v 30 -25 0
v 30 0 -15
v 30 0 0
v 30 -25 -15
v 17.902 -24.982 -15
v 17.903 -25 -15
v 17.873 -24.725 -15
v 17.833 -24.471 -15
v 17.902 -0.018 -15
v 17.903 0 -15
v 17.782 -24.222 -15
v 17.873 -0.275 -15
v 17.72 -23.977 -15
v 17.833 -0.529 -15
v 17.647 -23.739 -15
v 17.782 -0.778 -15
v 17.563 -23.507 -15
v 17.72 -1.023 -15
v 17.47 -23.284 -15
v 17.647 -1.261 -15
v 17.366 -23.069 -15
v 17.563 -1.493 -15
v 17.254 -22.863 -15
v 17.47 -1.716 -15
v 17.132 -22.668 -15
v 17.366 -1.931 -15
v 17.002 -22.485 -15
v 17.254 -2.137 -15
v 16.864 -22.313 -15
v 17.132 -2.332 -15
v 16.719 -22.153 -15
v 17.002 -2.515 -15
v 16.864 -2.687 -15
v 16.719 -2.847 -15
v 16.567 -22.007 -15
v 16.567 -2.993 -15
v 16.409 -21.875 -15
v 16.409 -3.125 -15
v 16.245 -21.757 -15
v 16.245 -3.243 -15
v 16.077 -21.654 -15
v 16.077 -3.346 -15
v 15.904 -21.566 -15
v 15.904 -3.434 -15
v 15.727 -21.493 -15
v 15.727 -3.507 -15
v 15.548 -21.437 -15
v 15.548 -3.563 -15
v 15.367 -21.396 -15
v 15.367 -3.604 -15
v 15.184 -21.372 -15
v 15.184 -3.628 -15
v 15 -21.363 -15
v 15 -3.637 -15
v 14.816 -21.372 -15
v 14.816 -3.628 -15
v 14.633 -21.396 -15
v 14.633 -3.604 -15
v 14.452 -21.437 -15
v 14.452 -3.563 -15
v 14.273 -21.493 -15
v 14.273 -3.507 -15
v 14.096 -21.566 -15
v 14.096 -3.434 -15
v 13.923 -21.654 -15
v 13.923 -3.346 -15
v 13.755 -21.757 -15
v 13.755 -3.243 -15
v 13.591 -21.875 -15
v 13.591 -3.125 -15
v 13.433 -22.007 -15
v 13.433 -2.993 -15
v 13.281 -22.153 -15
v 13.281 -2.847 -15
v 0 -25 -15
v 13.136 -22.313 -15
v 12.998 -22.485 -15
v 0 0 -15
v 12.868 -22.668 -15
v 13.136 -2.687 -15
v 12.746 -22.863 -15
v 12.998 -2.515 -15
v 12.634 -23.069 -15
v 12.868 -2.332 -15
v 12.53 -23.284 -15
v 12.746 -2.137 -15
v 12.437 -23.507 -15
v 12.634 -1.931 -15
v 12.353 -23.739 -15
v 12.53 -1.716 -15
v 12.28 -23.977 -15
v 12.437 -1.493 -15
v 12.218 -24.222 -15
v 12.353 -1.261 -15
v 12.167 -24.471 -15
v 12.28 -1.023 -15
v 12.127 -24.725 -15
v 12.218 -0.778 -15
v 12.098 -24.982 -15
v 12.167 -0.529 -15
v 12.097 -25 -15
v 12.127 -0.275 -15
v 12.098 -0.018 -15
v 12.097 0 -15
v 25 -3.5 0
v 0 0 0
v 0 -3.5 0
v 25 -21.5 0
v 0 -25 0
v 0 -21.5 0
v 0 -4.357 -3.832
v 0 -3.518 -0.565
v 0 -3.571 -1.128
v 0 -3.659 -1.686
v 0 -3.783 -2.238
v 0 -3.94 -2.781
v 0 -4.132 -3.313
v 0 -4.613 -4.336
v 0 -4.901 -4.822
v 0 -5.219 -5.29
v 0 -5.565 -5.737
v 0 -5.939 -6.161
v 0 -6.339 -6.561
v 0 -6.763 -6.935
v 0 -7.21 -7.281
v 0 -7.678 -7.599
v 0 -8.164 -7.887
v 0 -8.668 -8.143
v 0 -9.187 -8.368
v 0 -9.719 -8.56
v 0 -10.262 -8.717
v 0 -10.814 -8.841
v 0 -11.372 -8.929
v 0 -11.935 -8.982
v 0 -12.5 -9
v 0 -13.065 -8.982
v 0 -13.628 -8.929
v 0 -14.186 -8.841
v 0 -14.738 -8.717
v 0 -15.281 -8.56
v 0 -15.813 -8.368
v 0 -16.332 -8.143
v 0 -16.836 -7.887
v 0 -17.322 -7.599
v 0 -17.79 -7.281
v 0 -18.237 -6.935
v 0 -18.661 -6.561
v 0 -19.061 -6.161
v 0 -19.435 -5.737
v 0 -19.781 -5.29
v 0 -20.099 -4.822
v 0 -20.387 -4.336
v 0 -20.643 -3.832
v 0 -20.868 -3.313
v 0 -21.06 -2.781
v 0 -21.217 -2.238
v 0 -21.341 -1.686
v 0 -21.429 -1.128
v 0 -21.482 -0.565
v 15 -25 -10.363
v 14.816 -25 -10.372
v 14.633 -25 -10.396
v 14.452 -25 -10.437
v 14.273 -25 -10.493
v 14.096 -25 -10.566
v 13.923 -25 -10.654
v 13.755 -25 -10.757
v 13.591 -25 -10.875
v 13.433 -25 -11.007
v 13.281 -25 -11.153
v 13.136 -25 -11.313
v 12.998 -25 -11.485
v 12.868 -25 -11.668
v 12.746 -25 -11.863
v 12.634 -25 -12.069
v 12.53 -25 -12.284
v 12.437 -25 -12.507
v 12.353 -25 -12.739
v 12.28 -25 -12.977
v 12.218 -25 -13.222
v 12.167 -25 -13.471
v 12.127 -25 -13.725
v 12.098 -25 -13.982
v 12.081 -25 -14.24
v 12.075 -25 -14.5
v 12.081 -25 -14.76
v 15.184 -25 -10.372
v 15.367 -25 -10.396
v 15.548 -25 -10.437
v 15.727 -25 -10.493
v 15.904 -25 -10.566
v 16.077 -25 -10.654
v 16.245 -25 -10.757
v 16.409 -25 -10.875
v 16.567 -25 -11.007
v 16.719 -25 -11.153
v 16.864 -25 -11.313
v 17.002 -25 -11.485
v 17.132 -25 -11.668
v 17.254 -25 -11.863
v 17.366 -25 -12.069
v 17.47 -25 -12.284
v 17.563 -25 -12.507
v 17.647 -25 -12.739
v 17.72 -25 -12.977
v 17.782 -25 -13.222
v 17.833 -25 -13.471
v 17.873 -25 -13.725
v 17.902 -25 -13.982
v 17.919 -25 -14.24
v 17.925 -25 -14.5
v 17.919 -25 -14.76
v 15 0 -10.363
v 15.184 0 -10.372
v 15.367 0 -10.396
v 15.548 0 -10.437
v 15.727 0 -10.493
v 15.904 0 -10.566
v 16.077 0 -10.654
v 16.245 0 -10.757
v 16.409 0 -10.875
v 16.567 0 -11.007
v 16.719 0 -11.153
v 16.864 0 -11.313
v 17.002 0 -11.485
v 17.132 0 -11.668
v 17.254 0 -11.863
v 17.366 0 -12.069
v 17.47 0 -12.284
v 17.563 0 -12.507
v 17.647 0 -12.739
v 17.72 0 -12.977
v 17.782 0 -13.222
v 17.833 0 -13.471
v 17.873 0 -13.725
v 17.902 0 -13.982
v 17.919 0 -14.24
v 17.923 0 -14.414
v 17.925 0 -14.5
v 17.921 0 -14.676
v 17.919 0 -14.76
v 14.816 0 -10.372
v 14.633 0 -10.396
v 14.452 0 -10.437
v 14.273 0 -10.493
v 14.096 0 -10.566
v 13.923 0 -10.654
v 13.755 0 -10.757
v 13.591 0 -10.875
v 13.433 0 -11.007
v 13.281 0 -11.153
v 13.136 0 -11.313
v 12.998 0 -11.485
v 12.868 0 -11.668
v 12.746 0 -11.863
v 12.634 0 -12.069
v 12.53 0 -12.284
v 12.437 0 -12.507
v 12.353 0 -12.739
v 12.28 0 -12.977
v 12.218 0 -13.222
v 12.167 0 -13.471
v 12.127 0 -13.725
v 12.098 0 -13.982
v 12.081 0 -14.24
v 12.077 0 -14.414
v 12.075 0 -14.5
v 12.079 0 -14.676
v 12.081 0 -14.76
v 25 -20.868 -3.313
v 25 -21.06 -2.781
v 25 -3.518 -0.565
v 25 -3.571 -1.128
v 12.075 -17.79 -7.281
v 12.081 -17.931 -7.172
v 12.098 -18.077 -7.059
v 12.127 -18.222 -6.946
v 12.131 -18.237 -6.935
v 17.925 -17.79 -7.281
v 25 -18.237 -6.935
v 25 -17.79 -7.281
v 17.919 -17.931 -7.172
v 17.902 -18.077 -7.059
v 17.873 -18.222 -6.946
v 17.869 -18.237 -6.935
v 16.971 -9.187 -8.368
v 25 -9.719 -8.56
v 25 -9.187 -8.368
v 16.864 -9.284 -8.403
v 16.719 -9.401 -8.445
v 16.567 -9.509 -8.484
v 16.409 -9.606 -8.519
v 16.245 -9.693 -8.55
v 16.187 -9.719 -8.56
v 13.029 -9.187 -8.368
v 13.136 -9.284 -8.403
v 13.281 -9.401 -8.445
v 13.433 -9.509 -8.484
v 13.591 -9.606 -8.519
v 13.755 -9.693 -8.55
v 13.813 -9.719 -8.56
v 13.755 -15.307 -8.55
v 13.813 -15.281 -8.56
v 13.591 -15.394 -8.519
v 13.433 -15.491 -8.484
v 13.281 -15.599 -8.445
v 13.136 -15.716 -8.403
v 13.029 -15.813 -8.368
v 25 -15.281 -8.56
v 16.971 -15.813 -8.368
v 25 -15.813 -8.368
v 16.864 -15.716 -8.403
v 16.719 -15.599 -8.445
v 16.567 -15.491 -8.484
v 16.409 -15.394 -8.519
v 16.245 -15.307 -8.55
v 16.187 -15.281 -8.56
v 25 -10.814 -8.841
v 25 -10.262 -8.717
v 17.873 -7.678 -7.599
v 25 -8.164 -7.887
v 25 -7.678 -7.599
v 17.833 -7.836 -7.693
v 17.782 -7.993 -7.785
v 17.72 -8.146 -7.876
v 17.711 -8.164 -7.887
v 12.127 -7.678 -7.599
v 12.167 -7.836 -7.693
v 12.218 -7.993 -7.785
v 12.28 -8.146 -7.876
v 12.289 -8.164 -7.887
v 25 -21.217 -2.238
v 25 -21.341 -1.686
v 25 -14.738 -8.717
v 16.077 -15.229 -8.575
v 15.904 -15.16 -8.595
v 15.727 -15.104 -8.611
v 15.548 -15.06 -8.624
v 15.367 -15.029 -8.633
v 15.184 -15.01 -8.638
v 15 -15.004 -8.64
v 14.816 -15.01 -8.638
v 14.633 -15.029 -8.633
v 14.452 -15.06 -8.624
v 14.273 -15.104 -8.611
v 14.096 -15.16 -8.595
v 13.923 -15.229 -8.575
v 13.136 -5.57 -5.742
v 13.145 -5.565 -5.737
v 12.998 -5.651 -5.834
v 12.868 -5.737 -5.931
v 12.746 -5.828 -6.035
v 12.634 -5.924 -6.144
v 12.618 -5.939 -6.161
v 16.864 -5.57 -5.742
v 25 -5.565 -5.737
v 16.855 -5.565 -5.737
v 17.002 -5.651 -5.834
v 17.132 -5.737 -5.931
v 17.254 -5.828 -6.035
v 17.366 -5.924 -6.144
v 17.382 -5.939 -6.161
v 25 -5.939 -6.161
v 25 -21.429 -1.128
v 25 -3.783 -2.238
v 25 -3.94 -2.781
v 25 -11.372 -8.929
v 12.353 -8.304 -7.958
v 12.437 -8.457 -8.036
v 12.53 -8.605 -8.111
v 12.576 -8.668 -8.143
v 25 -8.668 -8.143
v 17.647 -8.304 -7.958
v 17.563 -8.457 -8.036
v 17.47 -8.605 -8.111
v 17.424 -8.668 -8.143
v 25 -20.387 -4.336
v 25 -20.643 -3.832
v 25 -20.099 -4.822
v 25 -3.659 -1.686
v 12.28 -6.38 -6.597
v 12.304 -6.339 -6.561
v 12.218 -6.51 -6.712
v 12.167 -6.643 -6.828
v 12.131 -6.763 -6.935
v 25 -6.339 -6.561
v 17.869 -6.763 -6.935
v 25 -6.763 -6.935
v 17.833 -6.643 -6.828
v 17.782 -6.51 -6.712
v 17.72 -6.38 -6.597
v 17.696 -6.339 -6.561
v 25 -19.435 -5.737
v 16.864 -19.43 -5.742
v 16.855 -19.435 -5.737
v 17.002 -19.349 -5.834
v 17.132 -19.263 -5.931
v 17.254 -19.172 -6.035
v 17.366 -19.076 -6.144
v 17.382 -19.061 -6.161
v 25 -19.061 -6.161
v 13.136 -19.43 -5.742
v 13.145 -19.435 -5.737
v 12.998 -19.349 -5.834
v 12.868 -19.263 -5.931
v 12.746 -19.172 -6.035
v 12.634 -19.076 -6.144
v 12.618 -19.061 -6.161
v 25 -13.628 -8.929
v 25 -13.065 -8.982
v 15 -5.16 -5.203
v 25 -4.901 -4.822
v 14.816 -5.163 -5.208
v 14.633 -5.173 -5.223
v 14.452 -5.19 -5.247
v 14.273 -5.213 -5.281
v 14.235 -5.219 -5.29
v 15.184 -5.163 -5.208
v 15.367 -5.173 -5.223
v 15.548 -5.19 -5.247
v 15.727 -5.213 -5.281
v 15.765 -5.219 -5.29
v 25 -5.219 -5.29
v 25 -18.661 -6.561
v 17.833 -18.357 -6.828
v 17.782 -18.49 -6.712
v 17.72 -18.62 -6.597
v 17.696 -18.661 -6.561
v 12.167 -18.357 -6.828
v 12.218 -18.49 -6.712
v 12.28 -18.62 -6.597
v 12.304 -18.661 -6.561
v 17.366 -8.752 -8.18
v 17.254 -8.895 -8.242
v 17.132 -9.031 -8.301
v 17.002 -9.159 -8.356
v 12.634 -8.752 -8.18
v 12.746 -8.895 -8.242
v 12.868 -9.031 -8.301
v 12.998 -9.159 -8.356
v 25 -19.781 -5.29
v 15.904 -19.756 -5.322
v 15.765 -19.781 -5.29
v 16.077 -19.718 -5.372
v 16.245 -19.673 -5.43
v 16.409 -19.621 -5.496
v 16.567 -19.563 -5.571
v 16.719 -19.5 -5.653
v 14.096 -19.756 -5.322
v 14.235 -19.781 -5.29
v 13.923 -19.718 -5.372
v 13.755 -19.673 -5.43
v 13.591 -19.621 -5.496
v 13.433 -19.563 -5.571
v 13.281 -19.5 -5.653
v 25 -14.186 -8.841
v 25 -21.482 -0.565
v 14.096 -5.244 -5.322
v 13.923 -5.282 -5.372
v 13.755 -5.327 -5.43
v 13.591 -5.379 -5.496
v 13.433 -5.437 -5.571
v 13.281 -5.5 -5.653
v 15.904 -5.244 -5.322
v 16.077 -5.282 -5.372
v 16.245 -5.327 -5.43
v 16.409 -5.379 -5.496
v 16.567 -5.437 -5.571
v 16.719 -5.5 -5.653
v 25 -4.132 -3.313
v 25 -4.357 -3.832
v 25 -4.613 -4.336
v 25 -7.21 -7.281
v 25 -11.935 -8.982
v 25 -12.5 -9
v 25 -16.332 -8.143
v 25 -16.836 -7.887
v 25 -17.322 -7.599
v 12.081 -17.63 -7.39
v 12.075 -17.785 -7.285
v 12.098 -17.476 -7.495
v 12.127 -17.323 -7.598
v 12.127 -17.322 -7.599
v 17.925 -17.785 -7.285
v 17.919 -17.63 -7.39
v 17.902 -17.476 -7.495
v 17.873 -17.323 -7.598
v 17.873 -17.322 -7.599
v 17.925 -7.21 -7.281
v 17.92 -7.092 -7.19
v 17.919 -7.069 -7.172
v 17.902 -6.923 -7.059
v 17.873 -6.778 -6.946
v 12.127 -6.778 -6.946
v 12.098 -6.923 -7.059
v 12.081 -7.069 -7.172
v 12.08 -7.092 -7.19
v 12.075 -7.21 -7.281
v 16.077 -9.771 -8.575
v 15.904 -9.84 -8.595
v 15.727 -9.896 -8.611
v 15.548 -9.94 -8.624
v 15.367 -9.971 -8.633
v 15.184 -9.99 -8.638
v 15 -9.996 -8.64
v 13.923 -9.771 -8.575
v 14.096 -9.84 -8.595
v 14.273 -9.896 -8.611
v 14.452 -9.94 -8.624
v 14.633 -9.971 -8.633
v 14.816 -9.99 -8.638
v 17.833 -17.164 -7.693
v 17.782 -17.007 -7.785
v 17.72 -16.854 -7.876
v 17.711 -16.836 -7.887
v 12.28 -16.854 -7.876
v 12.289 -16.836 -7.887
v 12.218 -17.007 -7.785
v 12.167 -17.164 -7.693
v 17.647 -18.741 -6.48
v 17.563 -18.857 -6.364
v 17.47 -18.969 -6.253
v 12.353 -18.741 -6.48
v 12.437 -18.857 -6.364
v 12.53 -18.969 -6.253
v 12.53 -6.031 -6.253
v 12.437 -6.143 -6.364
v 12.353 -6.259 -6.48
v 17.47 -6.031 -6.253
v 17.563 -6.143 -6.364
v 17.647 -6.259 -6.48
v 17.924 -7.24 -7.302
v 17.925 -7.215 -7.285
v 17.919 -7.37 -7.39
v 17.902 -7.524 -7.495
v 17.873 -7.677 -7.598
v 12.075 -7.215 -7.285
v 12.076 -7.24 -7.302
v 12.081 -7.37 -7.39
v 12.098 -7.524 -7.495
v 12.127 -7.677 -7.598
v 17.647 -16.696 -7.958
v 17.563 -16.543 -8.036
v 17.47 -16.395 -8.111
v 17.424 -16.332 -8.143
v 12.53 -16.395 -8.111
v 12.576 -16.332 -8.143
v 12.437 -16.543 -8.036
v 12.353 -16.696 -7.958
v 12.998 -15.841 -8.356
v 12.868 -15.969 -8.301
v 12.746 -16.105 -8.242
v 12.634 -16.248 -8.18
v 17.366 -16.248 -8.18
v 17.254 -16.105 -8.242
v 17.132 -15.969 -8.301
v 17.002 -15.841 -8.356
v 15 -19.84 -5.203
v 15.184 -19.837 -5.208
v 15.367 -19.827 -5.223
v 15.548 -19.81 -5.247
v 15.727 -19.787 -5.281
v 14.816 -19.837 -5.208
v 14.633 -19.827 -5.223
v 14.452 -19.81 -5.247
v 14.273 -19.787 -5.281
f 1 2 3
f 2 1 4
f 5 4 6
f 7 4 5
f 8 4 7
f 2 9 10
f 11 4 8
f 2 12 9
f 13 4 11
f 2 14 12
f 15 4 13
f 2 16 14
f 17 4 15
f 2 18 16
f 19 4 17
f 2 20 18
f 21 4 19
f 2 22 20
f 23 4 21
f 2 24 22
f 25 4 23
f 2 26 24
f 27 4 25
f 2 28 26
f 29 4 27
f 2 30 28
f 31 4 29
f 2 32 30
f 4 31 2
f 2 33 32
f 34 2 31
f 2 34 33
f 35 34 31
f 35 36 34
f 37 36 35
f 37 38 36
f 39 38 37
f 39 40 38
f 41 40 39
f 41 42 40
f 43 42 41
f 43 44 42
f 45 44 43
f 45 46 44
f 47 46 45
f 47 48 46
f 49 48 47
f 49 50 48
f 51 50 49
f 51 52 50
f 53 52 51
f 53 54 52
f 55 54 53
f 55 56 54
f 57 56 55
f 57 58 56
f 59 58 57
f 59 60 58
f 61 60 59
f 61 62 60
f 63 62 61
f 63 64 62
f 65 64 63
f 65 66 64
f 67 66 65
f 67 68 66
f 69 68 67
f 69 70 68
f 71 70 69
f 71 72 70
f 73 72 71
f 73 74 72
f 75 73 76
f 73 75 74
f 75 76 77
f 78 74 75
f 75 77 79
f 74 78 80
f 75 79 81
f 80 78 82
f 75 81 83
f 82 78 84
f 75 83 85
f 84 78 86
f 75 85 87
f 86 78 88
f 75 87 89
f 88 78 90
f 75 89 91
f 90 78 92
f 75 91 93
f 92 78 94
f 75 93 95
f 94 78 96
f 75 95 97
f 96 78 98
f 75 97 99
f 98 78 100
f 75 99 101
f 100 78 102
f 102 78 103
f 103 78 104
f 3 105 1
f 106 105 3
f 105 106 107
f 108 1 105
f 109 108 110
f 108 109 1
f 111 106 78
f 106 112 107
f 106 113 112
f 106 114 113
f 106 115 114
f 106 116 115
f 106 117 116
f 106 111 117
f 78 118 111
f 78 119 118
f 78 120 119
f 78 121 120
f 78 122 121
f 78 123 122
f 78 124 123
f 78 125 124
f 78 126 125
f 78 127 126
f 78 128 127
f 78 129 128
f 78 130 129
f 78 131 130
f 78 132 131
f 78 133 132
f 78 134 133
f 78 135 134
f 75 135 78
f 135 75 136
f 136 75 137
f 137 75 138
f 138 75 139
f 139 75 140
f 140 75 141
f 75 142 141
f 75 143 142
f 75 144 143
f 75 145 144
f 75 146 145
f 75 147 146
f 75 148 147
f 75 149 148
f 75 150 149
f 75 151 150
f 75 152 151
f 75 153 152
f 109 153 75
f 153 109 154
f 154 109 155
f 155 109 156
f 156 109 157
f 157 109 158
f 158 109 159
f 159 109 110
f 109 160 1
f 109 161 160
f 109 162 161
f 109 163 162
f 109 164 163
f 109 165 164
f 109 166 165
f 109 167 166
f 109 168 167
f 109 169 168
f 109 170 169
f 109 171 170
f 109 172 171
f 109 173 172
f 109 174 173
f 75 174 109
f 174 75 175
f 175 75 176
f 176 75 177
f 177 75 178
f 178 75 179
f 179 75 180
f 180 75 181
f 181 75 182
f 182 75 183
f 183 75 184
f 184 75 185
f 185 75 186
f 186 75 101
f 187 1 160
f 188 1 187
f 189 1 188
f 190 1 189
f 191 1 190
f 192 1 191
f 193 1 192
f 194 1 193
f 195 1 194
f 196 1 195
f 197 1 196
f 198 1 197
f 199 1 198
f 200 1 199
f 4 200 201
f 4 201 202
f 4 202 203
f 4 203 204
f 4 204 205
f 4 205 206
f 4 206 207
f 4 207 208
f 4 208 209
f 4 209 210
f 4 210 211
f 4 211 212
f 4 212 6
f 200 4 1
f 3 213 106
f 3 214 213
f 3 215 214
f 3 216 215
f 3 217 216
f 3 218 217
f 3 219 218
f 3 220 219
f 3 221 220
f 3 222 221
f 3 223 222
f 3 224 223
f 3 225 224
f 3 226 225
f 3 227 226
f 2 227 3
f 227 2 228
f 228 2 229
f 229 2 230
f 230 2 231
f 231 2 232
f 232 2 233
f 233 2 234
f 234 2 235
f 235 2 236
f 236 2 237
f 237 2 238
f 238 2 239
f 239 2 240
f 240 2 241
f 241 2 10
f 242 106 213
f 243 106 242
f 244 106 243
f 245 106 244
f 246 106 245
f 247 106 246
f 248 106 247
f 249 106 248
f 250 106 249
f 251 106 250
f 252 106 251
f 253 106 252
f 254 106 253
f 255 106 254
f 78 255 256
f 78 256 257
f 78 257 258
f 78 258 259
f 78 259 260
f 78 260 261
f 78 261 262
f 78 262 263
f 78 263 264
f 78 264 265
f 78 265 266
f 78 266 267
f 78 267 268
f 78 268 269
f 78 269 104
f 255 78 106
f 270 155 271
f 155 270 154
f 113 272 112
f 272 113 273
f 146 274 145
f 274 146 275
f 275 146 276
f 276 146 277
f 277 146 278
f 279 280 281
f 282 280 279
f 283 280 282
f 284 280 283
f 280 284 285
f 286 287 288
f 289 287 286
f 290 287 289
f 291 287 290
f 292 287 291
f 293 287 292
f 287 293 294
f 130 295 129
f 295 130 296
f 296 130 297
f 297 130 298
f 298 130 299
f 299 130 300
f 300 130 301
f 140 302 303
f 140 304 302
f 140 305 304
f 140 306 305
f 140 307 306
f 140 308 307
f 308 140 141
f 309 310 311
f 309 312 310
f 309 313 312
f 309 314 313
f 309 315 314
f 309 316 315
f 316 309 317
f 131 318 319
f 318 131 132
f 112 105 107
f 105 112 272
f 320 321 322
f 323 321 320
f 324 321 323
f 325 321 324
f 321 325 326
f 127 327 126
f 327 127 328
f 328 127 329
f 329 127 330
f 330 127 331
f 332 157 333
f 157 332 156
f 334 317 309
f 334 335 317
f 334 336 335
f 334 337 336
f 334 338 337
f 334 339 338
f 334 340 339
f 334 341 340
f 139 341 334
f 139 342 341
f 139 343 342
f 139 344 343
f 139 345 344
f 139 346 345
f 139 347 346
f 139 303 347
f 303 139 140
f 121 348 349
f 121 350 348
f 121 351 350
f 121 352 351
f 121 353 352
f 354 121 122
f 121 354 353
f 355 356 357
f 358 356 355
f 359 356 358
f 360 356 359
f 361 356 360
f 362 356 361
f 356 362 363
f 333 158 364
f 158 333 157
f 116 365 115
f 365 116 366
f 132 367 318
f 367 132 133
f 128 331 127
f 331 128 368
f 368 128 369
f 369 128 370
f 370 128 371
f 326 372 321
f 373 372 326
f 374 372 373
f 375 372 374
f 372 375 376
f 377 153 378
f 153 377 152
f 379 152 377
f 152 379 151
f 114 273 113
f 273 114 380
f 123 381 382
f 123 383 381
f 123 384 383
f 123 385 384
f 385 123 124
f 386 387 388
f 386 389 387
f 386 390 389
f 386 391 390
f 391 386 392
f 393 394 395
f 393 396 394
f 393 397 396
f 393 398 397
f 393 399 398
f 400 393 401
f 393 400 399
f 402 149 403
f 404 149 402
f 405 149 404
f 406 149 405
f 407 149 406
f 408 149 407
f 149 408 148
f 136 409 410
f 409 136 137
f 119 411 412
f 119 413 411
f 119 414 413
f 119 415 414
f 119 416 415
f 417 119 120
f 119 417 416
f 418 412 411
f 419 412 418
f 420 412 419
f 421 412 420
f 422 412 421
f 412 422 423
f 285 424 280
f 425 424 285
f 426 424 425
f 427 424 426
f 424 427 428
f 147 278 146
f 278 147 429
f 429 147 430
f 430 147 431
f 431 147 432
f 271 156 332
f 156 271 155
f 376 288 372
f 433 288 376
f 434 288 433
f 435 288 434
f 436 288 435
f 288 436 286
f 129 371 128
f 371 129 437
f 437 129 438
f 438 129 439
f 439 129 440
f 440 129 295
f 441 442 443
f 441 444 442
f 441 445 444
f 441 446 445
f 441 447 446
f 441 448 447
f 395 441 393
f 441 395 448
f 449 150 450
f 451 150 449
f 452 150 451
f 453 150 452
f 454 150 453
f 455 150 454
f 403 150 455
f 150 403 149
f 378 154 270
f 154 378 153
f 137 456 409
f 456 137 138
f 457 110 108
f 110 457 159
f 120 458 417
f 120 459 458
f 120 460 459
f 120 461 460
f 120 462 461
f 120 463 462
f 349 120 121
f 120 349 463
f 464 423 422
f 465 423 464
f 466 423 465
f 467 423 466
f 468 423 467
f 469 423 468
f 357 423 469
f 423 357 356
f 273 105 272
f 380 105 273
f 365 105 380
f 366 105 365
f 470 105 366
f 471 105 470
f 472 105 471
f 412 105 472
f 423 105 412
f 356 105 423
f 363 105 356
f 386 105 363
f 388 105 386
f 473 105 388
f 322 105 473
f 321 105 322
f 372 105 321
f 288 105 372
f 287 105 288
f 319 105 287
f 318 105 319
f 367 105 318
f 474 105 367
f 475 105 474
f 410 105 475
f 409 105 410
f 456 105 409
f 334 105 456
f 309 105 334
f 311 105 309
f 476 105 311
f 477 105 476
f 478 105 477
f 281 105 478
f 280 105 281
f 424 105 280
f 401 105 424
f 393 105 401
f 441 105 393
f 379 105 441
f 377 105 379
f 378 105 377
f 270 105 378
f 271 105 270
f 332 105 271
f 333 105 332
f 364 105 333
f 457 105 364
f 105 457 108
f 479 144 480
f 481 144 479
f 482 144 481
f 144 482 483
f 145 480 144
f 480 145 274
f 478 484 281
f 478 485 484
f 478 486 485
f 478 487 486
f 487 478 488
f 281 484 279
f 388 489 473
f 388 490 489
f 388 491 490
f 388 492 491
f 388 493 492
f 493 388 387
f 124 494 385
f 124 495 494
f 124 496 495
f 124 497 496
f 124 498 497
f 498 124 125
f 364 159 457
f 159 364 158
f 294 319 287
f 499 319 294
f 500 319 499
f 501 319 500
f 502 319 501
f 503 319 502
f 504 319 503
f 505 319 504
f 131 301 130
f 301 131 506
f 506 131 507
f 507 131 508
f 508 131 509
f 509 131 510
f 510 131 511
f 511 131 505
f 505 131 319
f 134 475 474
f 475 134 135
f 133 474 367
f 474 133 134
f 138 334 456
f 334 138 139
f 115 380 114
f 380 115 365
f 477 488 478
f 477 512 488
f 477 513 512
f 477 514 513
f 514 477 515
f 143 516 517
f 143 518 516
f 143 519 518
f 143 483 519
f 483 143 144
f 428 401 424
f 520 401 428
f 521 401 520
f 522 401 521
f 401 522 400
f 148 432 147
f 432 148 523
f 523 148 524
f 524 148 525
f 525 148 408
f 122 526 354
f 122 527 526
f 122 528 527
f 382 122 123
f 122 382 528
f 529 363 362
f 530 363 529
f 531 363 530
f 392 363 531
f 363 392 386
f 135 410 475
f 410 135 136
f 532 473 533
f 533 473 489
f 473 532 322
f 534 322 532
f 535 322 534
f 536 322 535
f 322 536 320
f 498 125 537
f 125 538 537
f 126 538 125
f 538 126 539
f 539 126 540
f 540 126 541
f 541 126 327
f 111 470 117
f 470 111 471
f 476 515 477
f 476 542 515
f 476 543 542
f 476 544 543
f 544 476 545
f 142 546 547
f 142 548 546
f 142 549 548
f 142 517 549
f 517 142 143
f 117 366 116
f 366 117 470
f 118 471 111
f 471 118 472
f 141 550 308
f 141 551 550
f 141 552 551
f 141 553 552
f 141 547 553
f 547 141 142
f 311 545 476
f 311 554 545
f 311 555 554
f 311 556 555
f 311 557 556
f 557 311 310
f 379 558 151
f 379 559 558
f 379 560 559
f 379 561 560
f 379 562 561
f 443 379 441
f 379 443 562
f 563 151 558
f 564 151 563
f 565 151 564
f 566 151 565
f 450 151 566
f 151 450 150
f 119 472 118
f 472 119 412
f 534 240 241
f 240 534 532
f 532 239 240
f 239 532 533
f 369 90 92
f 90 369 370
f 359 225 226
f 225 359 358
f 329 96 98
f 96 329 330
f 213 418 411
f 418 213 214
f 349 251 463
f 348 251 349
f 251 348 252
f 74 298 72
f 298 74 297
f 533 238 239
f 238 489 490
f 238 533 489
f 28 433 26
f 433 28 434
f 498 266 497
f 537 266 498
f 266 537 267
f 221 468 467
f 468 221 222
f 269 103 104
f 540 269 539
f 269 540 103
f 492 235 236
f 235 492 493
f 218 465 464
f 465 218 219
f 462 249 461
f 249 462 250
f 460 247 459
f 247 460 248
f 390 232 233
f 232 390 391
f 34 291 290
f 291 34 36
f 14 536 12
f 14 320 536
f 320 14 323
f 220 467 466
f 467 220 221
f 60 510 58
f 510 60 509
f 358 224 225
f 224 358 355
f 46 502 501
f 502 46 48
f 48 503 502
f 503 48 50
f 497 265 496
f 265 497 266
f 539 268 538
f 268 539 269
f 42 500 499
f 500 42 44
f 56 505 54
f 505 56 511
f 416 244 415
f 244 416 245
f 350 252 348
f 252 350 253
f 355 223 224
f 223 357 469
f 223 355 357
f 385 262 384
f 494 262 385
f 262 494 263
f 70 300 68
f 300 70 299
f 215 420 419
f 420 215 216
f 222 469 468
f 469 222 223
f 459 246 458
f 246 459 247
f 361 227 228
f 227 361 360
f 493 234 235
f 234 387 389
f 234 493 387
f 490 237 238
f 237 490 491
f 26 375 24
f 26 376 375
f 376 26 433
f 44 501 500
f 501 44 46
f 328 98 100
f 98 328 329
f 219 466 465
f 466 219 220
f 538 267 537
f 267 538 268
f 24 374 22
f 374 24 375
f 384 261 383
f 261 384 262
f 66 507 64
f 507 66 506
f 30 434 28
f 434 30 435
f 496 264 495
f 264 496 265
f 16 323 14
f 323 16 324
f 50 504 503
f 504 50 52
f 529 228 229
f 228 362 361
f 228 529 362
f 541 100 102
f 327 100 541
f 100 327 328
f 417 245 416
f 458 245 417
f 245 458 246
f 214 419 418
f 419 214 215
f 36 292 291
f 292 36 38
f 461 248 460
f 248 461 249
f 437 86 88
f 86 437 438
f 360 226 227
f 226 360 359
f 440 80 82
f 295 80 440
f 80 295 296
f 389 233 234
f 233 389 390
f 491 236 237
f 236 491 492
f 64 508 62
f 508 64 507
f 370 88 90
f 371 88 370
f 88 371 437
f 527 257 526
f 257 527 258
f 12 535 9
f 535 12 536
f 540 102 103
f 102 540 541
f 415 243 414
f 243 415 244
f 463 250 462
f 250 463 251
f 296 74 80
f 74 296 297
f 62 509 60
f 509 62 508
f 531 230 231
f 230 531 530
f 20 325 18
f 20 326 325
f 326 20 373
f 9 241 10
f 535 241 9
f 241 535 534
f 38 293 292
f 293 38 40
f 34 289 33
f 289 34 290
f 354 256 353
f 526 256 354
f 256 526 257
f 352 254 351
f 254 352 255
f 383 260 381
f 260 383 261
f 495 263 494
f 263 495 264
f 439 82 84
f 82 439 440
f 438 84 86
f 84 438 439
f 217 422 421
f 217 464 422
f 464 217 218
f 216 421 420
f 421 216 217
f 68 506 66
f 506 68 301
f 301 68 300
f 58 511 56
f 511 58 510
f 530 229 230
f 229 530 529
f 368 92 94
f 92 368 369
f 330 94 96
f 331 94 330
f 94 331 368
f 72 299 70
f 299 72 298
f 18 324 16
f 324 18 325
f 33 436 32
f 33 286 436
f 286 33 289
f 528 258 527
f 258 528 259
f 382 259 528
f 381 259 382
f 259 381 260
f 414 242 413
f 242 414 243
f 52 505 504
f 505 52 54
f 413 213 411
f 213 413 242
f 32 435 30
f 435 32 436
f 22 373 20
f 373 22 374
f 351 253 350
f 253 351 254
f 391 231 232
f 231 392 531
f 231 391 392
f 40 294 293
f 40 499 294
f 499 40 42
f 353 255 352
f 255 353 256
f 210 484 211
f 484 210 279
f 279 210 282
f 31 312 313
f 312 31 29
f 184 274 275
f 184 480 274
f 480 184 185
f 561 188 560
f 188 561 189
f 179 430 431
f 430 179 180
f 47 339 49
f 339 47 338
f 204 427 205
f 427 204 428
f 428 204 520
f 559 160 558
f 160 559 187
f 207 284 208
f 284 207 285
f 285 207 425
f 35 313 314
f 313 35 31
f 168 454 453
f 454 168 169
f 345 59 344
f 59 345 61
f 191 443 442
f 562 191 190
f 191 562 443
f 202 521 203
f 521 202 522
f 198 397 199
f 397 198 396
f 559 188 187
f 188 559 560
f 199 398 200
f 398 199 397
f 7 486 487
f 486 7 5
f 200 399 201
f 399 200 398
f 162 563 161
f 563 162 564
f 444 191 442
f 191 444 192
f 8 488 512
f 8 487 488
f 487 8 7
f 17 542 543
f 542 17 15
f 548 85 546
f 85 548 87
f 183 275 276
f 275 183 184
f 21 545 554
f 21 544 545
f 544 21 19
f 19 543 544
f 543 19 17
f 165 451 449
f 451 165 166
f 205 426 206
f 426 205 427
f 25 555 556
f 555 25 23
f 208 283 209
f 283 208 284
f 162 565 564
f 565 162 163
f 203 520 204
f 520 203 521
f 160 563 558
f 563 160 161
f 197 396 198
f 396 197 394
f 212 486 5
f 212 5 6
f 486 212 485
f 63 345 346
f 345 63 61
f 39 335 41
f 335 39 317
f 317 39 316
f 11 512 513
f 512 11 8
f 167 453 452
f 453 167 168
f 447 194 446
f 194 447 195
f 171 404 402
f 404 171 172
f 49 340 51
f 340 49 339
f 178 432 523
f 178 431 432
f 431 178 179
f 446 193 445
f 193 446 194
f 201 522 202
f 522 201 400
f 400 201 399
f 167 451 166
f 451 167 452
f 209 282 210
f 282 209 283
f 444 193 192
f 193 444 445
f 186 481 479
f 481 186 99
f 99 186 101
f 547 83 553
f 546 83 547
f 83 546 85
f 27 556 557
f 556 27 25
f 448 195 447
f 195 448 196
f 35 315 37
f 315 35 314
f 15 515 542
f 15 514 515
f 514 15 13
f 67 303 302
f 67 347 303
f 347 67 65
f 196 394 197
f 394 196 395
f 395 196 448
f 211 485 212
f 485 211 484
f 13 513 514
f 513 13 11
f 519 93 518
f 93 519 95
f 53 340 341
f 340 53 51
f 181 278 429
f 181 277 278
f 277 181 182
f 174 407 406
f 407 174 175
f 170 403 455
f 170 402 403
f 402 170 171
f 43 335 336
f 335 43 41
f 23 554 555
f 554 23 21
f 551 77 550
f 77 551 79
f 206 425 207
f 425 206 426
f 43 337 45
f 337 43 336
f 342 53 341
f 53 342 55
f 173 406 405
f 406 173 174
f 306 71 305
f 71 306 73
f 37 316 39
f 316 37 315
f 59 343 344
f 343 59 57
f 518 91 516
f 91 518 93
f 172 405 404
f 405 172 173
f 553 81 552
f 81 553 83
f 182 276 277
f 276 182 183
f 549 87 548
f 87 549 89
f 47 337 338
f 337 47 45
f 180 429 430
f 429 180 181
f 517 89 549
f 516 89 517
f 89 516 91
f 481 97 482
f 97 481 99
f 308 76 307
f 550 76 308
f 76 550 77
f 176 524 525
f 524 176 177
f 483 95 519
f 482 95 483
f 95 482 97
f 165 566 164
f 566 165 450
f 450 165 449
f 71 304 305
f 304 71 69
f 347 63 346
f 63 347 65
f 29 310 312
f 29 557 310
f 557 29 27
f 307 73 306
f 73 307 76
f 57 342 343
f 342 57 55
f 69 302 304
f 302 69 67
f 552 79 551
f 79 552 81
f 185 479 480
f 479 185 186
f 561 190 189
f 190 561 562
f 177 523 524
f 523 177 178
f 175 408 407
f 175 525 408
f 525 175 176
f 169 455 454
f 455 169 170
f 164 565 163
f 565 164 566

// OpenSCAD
$fn=100;

//larger cylinder diameter
//slightly larger holes for diodes
//

length = 30;
width = 25;
depth = 15;
end_to_diodes = 10;


module diode_tube(angle, radius)
{
    rotate([angle, 0, 0])
        cylinder(r=radius, h=20);
}

rotate([180,0,0])
{
    difference()
    {
        cube([length,width,depth]);
        translate([0,width/2.0,0])rotate([0,90,0]) cylinder(r=9, h=length-5, $fn=100);
        translate([length-5-end_to_diodes,width/2-3,5])diode_tube(45, 5.85/2.0);
        translate([length-5-end_to_diodes,width/2+3,5])diode_tube(-45, 5.85/2.0);
    }
}
